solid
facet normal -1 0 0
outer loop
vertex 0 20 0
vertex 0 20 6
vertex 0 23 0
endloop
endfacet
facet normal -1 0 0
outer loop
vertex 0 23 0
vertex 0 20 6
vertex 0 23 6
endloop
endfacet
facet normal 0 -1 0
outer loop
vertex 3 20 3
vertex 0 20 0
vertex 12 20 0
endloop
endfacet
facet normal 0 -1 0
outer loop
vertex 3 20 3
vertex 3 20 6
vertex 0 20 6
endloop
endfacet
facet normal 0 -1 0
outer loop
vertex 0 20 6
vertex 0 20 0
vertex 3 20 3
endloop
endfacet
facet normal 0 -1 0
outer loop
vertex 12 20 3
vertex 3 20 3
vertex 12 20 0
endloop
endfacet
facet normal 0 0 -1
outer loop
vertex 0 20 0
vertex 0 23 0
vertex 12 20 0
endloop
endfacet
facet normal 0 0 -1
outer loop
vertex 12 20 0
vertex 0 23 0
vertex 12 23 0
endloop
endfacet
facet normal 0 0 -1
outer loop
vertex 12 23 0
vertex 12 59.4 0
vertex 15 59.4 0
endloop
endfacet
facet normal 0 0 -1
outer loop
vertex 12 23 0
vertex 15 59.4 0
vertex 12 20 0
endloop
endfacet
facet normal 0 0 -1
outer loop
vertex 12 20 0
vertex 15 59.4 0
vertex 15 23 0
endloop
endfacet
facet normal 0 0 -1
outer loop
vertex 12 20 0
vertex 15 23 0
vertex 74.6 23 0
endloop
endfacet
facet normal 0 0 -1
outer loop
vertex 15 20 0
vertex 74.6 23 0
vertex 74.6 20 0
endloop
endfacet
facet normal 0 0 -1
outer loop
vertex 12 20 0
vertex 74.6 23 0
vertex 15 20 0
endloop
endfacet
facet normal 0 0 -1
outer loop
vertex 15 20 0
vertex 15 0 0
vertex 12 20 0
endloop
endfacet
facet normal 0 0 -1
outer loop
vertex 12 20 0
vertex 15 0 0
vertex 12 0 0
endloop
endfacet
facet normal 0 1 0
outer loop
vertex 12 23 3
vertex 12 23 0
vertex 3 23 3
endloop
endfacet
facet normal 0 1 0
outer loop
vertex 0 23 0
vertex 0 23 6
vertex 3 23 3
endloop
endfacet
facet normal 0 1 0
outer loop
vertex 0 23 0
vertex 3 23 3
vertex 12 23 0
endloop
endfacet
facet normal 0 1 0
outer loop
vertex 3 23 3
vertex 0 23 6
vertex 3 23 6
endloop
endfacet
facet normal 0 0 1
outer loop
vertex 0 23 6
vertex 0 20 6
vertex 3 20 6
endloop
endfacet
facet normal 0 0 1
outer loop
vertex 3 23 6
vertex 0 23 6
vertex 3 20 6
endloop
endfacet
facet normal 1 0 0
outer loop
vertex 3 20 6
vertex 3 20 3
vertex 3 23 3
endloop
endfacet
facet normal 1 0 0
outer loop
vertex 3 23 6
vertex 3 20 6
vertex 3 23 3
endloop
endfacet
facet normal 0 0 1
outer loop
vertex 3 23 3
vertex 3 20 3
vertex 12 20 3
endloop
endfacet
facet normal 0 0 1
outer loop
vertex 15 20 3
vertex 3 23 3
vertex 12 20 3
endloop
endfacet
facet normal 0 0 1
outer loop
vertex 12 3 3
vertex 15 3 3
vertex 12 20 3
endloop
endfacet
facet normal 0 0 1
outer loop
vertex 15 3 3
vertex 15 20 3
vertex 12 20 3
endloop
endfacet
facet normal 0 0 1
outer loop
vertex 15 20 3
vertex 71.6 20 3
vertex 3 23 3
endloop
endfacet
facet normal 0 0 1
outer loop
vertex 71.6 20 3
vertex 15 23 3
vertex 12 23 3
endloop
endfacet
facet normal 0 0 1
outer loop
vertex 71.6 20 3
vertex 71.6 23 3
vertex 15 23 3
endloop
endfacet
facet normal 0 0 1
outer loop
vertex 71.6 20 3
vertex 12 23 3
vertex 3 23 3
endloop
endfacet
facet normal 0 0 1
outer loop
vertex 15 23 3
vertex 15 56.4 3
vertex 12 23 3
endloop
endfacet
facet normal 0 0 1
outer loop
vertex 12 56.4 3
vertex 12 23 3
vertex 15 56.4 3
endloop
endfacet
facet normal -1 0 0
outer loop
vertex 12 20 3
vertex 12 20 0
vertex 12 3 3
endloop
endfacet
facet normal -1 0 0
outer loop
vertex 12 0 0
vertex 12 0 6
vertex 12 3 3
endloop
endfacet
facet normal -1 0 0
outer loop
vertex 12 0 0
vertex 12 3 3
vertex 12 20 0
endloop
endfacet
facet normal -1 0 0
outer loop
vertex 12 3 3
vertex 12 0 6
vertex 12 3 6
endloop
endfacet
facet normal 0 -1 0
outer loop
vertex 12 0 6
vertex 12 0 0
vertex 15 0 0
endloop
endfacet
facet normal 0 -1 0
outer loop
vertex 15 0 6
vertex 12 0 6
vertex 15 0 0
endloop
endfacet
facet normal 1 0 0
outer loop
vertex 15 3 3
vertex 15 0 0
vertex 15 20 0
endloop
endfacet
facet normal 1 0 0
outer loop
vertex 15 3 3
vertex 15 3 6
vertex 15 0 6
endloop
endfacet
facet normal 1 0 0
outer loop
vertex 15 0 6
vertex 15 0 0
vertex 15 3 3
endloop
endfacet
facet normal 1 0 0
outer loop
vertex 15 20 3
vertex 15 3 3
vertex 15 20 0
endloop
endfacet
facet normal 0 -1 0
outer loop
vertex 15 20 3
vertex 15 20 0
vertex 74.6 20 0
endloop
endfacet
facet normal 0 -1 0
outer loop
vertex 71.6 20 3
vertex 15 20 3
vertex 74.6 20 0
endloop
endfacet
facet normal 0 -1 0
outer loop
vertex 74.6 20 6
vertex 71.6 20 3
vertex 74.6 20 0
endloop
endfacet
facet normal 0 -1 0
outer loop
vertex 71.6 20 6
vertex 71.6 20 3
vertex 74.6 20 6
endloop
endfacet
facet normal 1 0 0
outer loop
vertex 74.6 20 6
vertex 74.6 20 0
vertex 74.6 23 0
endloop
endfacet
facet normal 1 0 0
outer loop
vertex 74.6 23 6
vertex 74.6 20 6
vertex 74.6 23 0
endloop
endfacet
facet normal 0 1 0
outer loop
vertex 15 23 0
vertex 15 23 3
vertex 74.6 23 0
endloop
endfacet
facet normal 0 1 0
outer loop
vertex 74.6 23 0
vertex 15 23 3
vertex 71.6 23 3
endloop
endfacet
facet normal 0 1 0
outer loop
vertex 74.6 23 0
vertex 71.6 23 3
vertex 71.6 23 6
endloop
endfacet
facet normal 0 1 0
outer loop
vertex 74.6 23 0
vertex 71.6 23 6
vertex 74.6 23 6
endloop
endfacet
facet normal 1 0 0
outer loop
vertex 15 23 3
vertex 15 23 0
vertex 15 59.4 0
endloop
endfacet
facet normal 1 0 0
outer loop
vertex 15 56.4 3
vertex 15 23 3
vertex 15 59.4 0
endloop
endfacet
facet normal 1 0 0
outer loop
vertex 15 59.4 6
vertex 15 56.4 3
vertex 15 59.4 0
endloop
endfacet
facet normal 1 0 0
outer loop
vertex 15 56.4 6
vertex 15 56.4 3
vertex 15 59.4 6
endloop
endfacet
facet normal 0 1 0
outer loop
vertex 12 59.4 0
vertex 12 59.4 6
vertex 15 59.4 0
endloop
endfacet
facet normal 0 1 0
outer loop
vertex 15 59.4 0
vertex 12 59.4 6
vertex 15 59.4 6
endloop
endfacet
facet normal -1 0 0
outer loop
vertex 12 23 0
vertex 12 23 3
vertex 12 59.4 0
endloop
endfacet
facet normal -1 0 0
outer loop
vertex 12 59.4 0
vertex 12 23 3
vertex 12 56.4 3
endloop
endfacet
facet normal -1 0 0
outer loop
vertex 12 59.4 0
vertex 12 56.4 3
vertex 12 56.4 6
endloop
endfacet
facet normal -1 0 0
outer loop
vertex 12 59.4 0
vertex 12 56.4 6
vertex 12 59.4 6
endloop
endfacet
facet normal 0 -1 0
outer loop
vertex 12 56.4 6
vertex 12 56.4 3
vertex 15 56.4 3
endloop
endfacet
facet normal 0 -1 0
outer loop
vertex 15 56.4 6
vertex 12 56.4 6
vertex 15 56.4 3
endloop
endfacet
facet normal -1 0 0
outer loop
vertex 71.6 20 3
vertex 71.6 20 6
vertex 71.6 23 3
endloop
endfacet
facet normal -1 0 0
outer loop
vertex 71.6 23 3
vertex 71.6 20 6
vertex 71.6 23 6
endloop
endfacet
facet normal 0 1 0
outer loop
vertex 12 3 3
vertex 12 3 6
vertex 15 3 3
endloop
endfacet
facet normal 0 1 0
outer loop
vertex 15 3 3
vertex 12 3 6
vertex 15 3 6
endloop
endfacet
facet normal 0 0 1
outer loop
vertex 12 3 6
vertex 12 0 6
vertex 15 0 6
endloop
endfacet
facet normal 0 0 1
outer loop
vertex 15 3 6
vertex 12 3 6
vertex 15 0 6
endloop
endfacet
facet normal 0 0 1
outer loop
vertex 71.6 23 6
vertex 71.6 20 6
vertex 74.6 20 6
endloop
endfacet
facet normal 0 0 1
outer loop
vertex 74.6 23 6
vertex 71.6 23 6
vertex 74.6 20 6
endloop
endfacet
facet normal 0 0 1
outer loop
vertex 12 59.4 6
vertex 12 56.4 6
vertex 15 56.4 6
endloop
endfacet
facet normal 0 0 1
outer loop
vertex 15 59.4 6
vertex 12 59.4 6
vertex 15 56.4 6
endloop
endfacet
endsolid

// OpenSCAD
width = 53.4;
length = 68.6;
thickness = 3;
height = 3;
w_offset = 20;
l_offset = 12;

translate([0, w_offset, 0]){
	cube([length+2*thickness, thickness, thickness]);
	cube([thickness, thickness, height+thickness]);
	translate([length+thickness, 0, 0]){
		cube([thickness, thickness, height+thickness]);
	}
}

translate([l_offset, 0, 0]){
	cube([thickness, width+2*thickness, thickness]);
	cube([thickness, thickness, height+thickness]);
	translate([0, width+thickness, 0]){
		cube([thickness, thickness, height+thickness]);
	}
}
